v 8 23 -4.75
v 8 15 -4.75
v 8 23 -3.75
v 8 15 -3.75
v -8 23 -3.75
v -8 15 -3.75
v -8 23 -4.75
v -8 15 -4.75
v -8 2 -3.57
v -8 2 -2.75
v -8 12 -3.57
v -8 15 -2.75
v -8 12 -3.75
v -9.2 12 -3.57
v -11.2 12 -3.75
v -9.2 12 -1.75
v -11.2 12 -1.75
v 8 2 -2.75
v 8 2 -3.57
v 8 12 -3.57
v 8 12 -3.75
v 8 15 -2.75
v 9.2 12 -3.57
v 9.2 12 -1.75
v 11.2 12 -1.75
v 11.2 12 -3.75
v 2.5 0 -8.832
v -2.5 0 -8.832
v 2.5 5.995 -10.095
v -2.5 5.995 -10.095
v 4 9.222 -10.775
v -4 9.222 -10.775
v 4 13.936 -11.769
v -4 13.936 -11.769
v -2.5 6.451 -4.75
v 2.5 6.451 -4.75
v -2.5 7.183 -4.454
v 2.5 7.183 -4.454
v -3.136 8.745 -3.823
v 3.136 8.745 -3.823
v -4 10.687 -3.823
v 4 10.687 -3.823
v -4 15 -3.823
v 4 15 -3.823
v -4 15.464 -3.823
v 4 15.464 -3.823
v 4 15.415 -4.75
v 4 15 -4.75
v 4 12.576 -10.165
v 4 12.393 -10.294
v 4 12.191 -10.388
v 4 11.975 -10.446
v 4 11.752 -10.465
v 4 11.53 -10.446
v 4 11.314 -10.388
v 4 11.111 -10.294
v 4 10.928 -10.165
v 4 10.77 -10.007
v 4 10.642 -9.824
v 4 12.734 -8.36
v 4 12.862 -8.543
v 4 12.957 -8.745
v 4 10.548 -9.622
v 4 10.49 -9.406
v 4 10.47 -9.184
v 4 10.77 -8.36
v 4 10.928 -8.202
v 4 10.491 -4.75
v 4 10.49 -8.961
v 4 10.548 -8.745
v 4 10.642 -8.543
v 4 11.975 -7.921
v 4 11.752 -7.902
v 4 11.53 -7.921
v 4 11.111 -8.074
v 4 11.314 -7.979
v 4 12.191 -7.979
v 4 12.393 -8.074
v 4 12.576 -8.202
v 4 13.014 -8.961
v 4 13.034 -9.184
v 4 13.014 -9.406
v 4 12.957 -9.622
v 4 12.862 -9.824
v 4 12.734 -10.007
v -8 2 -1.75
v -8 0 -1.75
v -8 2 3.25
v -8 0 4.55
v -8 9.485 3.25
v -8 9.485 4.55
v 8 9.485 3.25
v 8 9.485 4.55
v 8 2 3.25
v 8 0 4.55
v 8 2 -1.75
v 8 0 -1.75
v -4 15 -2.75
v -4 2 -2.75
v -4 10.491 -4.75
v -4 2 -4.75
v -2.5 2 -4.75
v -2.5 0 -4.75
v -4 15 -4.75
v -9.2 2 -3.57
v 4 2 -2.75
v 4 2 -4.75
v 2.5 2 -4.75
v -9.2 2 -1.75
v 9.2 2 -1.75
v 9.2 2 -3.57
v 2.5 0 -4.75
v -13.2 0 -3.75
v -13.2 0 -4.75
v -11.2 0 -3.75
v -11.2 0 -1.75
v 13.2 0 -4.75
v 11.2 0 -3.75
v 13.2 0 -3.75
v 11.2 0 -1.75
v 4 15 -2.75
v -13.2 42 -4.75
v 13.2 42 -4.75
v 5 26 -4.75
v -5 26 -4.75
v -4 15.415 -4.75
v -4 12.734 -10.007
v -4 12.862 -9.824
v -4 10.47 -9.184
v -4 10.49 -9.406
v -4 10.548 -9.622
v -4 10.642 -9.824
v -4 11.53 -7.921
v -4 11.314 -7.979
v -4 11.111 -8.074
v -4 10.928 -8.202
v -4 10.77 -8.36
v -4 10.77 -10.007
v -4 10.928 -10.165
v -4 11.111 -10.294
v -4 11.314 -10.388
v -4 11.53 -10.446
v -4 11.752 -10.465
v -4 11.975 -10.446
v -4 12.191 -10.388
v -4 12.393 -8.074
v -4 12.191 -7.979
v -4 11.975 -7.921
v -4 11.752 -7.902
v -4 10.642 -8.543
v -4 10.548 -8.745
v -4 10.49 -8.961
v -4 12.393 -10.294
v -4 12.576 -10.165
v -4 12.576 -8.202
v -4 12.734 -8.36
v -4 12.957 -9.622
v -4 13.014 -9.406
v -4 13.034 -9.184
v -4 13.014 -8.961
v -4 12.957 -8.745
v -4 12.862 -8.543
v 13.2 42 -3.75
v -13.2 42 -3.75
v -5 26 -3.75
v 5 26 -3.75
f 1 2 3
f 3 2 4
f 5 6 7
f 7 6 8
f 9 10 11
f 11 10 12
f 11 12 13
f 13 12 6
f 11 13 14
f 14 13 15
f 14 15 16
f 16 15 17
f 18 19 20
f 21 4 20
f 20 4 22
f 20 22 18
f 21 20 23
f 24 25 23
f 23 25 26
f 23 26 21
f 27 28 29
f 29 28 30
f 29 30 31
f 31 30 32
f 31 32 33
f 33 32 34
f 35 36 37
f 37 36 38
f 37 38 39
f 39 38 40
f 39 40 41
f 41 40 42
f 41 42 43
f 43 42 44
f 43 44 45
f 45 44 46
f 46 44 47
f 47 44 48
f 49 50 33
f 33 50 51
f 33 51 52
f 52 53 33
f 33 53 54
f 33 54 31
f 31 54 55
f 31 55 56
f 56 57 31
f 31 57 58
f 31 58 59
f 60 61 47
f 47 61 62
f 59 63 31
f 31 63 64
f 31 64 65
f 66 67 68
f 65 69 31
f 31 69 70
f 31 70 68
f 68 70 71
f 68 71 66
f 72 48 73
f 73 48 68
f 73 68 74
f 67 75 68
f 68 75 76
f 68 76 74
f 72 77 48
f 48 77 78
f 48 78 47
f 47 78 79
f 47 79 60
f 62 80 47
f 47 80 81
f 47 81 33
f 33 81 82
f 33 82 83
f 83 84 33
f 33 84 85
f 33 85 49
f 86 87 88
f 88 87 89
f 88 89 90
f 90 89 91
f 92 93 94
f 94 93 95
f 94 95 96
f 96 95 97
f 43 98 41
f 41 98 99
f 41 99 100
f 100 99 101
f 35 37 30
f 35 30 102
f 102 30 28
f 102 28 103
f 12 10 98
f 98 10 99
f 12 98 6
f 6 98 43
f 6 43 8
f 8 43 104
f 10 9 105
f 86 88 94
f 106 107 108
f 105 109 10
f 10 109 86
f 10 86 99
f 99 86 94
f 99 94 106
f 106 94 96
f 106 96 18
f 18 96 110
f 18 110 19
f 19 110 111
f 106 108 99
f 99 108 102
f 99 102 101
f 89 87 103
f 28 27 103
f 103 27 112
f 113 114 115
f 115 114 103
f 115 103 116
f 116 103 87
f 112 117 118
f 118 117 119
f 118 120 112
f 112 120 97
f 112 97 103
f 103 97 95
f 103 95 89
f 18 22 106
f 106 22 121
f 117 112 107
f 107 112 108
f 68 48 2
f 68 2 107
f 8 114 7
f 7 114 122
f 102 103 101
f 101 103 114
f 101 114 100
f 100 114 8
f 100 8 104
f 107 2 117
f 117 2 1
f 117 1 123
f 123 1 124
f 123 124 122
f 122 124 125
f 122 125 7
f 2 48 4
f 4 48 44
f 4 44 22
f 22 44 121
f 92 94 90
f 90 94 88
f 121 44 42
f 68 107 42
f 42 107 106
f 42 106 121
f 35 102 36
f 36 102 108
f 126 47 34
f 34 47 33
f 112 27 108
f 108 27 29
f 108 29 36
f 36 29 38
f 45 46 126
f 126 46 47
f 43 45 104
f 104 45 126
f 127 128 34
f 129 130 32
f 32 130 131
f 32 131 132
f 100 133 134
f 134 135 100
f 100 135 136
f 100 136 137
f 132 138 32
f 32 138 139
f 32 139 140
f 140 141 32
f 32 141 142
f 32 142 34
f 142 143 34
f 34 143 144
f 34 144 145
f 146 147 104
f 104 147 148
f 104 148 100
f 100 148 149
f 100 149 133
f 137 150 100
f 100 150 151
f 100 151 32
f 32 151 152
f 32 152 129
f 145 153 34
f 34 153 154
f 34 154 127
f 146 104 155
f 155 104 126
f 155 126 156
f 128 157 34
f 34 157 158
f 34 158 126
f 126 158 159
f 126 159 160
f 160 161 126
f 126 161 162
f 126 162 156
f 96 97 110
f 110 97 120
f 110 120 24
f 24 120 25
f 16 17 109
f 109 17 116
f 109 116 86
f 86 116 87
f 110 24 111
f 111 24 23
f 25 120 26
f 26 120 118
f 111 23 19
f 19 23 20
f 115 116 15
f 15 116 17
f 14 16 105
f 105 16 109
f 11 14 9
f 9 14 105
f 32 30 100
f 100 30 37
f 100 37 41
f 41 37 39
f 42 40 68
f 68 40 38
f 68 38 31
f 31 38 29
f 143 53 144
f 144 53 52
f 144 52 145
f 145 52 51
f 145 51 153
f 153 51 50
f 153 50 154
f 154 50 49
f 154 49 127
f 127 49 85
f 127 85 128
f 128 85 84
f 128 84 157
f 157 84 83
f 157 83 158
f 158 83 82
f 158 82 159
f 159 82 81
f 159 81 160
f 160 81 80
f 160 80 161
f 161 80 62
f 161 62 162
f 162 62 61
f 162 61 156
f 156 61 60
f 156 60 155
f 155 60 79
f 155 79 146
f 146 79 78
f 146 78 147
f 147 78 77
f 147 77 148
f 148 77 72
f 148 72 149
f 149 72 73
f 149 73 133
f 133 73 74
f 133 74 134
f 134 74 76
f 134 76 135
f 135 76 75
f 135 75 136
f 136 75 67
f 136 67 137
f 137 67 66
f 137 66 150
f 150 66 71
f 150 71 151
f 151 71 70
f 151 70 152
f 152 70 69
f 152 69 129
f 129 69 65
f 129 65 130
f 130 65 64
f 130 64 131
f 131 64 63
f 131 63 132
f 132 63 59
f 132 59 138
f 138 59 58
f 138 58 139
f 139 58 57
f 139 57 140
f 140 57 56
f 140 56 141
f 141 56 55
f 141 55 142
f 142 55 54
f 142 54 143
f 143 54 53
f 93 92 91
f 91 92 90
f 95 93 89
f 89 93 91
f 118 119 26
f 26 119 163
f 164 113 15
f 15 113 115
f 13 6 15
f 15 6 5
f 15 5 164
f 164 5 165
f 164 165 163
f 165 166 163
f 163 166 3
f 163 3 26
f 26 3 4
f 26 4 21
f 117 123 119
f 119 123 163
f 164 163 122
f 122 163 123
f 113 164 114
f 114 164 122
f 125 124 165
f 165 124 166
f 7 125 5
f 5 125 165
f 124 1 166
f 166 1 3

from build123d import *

# Parameters (mm, degrees)
SKETCH_1_W          = 16
SKETCH_1_H          = 6
EXTRUDE_1_DEPTH     = 2
SKETCH_1_3_W        = 16
SKETCH_1_3_H        = 2
SKETCH_1_3_H_2      = 1.5
EXTRUDE_2_DEPTH     = 15
SKETCH_2_W          = 8
SKETCH_2_H          = 26
CUT_EXTRUDE_1_DEPTH = 2
EXTRUDE_3_DEPTH     = 2.5
EXTRUDE_4_DEPTH     = 5
EXTRUDE_5_DEPTH     = 1.5
SKETCH_9_W          = 1.2
SKETCH_9_H          = 1.820432063
EXTRUDE_6_DEPTH     = 2
EXTRUDE_7_DEPTH     = 12
CUT_EXTRUDE_START   = -7.10494
CUT_EXTRUDE_2_DEPTH = 7.10494
SKETCH_12_R         = 1.281793471
CUT_EXTRUDE_3_DEPTH = 10
CUT_EXTRUDE_4_DEPTH = 20.2
SKETCH_14_W         = 5.2
SKETCH_14_H         = 1
EXTRUDE_8_DEPTH     = 30
SKETCH_14_2_W       = 5.2
SKETCH_14_2_H       = 1
EXTRUDE_9_DEPTH     = 12
SKETCH_15_W         = 1
SKETCH_15_H         = 16
EXTRUDE_10_DEPTH    = 16
CHAMFER_1_SIZE      = 3


with BuildPart() as part:
    # 草图1 → 凸台-拉伸1 (new body)
    with BuildSketch(Plane(origin=(0, 0, 0), x_dir=(1, 0, 0), z_dir=(0, 1, 0))):
        with Locations((0, -0.25)):
            Rectangle(SKETCH_1_W, SKETCH_1_H)
    extrude(amount=EXTRUDE_1_DEPTH)

    # 草图1<3> → 凸台-拉伸2 (add)
    with BuildSketch(Plane(origin=(0, 0, 0), x_dir=(1, 0, 0), z_dir=(0, 1, 0))):
        with Locations((0, 3.75)):
            Rectangle(SKETCH_1_3_W, SKETCH_1_3_H)
        with Locations((0, -4)):
            Rectangle(SKETCH_1_3_W, SKETCH_1_3_H_2)
    extrude(amount=EXTRUDE_2_DEPTH)

    # 草图2 → 切除-拉伸1 (cut)
    with BuildSketch(Plane(origin=(0, 0, -4.75), x_dir=(-1, 0, 0), z_dir=(0, 0, -1))):
        with Locations((0, 15)):
            Rectangle(SKETCH_2_W, SKETCH_2_H)
    extrude(amount=-CUT_EXTRUDE_1_DEPTH, mode=Mode.SUBTRACT)

    # 草图3 → 凸台-拉伸3 (add, symmetric)
    with BuildSketch(Plane(origin=(0, 0, 0), x_dir=(0, 0, -1), z_dir=(1, 0, 0))):
        Polygon((4.75, 0), (8.831597644, 0), (11.768525918, 13.935665169), (4.75, 15.414812878), align=None)
    extrude(amount=EXTRUDE_3_DEPTH, both=True)

    # 草图5 → 凸台-拉伸4 (add)
    with BuildSketch(Plane(origin=(2.5, 0, 0), x_dir=(0, 0, -1), z_dir=(1, 0, 0))):
        Polygon((4.75, 6.451105389), (3.822798244, 8.744995241), (3.822798244, 15.463750373), (4.75, 15.414812878), align=None)
    extrude(amount=-EXTRUDE_4_DEPTH)

    # 草图6 → 凸台-拉伸5 (add)
    with BuildSketch(Plane.ZY.offset(2.5)):
        Polygon((-4.75, 6.451105389), (-10.094945569, 5.994560313), (-11.768525918, 13.935665169), (-4.75, 15.414812878), (-3.822798244, 15.463750373), (-3.822798244, 8.744995241), align=None)
    extrude_5 = extrude(amount=EXTRUDE_5_DEPTH)

    # 草图9 → 凸台-拉伸6 (add)
    with BuildSketch(Plane.XZ):
        with Locations((8.6, -2.660216032)):
            Rectangle(SKETCH_9_W, SKETCH_9_H)
        with Locations((-8.6, -2.660216032)):
            Rectangle(SKETCH_9_W, SKETCH_9_H)
    extrude(amount=-EXTRUDE_6_DEPTH)

    # 草图9<3> → 凸台-拉伸7 (add)
    with BuildSketch(Plane.XZ):
        Polygon((8, -3.570432063), (8, -4.75), (11.2, -4.75), (11.2, -1.75), (9.2, -1.75), (9.2, -3.570432063), align=None)
        Polygon((-8, -4.75), (-8, -3.570432063), (-9.2, -3.570432063), (-9.2, -1.75), (-11.2, -1.75), (-11.2, -4.75), align=None)
    extrude(amount=-EXTRUDE_7_DEPTH)

    # 草图11 → 切除-拉伸2 (cut)
    with BuildSketch(Plane(origin=(0, -1.782098659, -8.456022034), x_dir=(-1, 0, 0), z_dir=(0, -0.206219179, -0.978505825)).offset(CUT_EXTRUDE_START)):
        Polygon((2.5, 7.947483572), (4, 11.245323919), (4, 7.947483572), (4, 5.815044055), (2.5, 5.815044055), align=None)
    cut_extrude_2 = extrude(amount=CUT_EXTRUDE_2_DEPTH, mode=Mode.SUBTRACT)

    # 镜向1: 凸台-拉伸5, 切除-拉伸2 across plane
    add(extrude_5.mirror(Plane(origin=(0, 0, 0), x_dir=(0, 0, 1), z_dir=(1, 0, 0))))
    add(cut_extrude_2.mirror(Plane(origin=(0, 0, 0), x_dir=(0, 0, 1), z_dir=(1, 0, 0))), mode=Mode.SUBTRACT)

    # 草图12 → 切除-拉伸3 (cut)
    with BuildSketch(Plane(origin=(4, 0, 0), x_dir=(0, 0, -1), z_dir=(1, 0, 0))):
        with Locations((9.183579002, 11.7521089)):
            Circle(SKETCH_12_R)
    extrude(amount=-CUT_EXTRUDE_3_DEPTH, mode=Mode.SUBTRACT)

    # 草图13 → 切除-拉伸4 (cut, through all)
    with BuildSketch(Plane(origin=(8, 0, 0), x_dir=(0, 0, -1), z_dir=(1, 0, 0))):
        Polygon((-3.25, 9.484512334), (-4.55, 9.484512334), (-4.55, 0), (-4.75, 0), (-4.75, 15), (-3.25, 15), align=None)
    extrude(amount=-CUT_EXTRUDE_4_DEPTH, mode=Mode.SUBTRACT)

    # 草图14 → 凸台-拉伸8 (add)
    with BuildSketch(Plane(origin=(0, 12, 0), x_dir=(1, 0, 0), z_dir=(0, 1, 0))):
        with Locations((10.6, 4.25)):
            Rectangle(SKETCH_14_W, SKETCH_14_H)
        with Locations((-10.6, 4.25)):
            Rectangle(SKETCH_14_W, SKETCH_14_H)
    extrude(amount=EXTRUDE_8_DEPTH)

    # 草图14<2> → 凸台-拉伸9 (add)
    with BuildSketch(Plane(origin=(0, 12, 0), x_dir=(1, 0, 0), z_dir=(0, 1, 0))):
        with Locations((10.6, 4.25)):
            Rectangle(SKETCH_14_2_W, SKETCH_14_2_H)
        with Locations((-10.6, 4.25)):
            Rectangle(SKETCH_14_2_W, SKETCH_14_2_H)
    extrude(amount=-EXTRUDE_9_DEPTH)

    # 草图15 → 凸台-拉伸10 (add)
    with BuildSketch(Plane(origin=(-8, 0, 0), x_dir=(0, 0, -1), z_dir=(1, 0, 0))):
        with Locations((4.25, 34)):
            Rectangle(SKETCH_15_W, SKETCH_15_H)
    extrude(amount=EXTRUDE_10_DEPTH)

    # 倒角1
    chamfer_1_edges = [part.edges().sort_by_distance(p)[0] for p in [
        (-8, 26, -4.25),
        (8, 26, -4.25),
    ]]
    chamfer(chamfer_1_edges, length=CHAMFER_1_SIZE)


solid = part.part
